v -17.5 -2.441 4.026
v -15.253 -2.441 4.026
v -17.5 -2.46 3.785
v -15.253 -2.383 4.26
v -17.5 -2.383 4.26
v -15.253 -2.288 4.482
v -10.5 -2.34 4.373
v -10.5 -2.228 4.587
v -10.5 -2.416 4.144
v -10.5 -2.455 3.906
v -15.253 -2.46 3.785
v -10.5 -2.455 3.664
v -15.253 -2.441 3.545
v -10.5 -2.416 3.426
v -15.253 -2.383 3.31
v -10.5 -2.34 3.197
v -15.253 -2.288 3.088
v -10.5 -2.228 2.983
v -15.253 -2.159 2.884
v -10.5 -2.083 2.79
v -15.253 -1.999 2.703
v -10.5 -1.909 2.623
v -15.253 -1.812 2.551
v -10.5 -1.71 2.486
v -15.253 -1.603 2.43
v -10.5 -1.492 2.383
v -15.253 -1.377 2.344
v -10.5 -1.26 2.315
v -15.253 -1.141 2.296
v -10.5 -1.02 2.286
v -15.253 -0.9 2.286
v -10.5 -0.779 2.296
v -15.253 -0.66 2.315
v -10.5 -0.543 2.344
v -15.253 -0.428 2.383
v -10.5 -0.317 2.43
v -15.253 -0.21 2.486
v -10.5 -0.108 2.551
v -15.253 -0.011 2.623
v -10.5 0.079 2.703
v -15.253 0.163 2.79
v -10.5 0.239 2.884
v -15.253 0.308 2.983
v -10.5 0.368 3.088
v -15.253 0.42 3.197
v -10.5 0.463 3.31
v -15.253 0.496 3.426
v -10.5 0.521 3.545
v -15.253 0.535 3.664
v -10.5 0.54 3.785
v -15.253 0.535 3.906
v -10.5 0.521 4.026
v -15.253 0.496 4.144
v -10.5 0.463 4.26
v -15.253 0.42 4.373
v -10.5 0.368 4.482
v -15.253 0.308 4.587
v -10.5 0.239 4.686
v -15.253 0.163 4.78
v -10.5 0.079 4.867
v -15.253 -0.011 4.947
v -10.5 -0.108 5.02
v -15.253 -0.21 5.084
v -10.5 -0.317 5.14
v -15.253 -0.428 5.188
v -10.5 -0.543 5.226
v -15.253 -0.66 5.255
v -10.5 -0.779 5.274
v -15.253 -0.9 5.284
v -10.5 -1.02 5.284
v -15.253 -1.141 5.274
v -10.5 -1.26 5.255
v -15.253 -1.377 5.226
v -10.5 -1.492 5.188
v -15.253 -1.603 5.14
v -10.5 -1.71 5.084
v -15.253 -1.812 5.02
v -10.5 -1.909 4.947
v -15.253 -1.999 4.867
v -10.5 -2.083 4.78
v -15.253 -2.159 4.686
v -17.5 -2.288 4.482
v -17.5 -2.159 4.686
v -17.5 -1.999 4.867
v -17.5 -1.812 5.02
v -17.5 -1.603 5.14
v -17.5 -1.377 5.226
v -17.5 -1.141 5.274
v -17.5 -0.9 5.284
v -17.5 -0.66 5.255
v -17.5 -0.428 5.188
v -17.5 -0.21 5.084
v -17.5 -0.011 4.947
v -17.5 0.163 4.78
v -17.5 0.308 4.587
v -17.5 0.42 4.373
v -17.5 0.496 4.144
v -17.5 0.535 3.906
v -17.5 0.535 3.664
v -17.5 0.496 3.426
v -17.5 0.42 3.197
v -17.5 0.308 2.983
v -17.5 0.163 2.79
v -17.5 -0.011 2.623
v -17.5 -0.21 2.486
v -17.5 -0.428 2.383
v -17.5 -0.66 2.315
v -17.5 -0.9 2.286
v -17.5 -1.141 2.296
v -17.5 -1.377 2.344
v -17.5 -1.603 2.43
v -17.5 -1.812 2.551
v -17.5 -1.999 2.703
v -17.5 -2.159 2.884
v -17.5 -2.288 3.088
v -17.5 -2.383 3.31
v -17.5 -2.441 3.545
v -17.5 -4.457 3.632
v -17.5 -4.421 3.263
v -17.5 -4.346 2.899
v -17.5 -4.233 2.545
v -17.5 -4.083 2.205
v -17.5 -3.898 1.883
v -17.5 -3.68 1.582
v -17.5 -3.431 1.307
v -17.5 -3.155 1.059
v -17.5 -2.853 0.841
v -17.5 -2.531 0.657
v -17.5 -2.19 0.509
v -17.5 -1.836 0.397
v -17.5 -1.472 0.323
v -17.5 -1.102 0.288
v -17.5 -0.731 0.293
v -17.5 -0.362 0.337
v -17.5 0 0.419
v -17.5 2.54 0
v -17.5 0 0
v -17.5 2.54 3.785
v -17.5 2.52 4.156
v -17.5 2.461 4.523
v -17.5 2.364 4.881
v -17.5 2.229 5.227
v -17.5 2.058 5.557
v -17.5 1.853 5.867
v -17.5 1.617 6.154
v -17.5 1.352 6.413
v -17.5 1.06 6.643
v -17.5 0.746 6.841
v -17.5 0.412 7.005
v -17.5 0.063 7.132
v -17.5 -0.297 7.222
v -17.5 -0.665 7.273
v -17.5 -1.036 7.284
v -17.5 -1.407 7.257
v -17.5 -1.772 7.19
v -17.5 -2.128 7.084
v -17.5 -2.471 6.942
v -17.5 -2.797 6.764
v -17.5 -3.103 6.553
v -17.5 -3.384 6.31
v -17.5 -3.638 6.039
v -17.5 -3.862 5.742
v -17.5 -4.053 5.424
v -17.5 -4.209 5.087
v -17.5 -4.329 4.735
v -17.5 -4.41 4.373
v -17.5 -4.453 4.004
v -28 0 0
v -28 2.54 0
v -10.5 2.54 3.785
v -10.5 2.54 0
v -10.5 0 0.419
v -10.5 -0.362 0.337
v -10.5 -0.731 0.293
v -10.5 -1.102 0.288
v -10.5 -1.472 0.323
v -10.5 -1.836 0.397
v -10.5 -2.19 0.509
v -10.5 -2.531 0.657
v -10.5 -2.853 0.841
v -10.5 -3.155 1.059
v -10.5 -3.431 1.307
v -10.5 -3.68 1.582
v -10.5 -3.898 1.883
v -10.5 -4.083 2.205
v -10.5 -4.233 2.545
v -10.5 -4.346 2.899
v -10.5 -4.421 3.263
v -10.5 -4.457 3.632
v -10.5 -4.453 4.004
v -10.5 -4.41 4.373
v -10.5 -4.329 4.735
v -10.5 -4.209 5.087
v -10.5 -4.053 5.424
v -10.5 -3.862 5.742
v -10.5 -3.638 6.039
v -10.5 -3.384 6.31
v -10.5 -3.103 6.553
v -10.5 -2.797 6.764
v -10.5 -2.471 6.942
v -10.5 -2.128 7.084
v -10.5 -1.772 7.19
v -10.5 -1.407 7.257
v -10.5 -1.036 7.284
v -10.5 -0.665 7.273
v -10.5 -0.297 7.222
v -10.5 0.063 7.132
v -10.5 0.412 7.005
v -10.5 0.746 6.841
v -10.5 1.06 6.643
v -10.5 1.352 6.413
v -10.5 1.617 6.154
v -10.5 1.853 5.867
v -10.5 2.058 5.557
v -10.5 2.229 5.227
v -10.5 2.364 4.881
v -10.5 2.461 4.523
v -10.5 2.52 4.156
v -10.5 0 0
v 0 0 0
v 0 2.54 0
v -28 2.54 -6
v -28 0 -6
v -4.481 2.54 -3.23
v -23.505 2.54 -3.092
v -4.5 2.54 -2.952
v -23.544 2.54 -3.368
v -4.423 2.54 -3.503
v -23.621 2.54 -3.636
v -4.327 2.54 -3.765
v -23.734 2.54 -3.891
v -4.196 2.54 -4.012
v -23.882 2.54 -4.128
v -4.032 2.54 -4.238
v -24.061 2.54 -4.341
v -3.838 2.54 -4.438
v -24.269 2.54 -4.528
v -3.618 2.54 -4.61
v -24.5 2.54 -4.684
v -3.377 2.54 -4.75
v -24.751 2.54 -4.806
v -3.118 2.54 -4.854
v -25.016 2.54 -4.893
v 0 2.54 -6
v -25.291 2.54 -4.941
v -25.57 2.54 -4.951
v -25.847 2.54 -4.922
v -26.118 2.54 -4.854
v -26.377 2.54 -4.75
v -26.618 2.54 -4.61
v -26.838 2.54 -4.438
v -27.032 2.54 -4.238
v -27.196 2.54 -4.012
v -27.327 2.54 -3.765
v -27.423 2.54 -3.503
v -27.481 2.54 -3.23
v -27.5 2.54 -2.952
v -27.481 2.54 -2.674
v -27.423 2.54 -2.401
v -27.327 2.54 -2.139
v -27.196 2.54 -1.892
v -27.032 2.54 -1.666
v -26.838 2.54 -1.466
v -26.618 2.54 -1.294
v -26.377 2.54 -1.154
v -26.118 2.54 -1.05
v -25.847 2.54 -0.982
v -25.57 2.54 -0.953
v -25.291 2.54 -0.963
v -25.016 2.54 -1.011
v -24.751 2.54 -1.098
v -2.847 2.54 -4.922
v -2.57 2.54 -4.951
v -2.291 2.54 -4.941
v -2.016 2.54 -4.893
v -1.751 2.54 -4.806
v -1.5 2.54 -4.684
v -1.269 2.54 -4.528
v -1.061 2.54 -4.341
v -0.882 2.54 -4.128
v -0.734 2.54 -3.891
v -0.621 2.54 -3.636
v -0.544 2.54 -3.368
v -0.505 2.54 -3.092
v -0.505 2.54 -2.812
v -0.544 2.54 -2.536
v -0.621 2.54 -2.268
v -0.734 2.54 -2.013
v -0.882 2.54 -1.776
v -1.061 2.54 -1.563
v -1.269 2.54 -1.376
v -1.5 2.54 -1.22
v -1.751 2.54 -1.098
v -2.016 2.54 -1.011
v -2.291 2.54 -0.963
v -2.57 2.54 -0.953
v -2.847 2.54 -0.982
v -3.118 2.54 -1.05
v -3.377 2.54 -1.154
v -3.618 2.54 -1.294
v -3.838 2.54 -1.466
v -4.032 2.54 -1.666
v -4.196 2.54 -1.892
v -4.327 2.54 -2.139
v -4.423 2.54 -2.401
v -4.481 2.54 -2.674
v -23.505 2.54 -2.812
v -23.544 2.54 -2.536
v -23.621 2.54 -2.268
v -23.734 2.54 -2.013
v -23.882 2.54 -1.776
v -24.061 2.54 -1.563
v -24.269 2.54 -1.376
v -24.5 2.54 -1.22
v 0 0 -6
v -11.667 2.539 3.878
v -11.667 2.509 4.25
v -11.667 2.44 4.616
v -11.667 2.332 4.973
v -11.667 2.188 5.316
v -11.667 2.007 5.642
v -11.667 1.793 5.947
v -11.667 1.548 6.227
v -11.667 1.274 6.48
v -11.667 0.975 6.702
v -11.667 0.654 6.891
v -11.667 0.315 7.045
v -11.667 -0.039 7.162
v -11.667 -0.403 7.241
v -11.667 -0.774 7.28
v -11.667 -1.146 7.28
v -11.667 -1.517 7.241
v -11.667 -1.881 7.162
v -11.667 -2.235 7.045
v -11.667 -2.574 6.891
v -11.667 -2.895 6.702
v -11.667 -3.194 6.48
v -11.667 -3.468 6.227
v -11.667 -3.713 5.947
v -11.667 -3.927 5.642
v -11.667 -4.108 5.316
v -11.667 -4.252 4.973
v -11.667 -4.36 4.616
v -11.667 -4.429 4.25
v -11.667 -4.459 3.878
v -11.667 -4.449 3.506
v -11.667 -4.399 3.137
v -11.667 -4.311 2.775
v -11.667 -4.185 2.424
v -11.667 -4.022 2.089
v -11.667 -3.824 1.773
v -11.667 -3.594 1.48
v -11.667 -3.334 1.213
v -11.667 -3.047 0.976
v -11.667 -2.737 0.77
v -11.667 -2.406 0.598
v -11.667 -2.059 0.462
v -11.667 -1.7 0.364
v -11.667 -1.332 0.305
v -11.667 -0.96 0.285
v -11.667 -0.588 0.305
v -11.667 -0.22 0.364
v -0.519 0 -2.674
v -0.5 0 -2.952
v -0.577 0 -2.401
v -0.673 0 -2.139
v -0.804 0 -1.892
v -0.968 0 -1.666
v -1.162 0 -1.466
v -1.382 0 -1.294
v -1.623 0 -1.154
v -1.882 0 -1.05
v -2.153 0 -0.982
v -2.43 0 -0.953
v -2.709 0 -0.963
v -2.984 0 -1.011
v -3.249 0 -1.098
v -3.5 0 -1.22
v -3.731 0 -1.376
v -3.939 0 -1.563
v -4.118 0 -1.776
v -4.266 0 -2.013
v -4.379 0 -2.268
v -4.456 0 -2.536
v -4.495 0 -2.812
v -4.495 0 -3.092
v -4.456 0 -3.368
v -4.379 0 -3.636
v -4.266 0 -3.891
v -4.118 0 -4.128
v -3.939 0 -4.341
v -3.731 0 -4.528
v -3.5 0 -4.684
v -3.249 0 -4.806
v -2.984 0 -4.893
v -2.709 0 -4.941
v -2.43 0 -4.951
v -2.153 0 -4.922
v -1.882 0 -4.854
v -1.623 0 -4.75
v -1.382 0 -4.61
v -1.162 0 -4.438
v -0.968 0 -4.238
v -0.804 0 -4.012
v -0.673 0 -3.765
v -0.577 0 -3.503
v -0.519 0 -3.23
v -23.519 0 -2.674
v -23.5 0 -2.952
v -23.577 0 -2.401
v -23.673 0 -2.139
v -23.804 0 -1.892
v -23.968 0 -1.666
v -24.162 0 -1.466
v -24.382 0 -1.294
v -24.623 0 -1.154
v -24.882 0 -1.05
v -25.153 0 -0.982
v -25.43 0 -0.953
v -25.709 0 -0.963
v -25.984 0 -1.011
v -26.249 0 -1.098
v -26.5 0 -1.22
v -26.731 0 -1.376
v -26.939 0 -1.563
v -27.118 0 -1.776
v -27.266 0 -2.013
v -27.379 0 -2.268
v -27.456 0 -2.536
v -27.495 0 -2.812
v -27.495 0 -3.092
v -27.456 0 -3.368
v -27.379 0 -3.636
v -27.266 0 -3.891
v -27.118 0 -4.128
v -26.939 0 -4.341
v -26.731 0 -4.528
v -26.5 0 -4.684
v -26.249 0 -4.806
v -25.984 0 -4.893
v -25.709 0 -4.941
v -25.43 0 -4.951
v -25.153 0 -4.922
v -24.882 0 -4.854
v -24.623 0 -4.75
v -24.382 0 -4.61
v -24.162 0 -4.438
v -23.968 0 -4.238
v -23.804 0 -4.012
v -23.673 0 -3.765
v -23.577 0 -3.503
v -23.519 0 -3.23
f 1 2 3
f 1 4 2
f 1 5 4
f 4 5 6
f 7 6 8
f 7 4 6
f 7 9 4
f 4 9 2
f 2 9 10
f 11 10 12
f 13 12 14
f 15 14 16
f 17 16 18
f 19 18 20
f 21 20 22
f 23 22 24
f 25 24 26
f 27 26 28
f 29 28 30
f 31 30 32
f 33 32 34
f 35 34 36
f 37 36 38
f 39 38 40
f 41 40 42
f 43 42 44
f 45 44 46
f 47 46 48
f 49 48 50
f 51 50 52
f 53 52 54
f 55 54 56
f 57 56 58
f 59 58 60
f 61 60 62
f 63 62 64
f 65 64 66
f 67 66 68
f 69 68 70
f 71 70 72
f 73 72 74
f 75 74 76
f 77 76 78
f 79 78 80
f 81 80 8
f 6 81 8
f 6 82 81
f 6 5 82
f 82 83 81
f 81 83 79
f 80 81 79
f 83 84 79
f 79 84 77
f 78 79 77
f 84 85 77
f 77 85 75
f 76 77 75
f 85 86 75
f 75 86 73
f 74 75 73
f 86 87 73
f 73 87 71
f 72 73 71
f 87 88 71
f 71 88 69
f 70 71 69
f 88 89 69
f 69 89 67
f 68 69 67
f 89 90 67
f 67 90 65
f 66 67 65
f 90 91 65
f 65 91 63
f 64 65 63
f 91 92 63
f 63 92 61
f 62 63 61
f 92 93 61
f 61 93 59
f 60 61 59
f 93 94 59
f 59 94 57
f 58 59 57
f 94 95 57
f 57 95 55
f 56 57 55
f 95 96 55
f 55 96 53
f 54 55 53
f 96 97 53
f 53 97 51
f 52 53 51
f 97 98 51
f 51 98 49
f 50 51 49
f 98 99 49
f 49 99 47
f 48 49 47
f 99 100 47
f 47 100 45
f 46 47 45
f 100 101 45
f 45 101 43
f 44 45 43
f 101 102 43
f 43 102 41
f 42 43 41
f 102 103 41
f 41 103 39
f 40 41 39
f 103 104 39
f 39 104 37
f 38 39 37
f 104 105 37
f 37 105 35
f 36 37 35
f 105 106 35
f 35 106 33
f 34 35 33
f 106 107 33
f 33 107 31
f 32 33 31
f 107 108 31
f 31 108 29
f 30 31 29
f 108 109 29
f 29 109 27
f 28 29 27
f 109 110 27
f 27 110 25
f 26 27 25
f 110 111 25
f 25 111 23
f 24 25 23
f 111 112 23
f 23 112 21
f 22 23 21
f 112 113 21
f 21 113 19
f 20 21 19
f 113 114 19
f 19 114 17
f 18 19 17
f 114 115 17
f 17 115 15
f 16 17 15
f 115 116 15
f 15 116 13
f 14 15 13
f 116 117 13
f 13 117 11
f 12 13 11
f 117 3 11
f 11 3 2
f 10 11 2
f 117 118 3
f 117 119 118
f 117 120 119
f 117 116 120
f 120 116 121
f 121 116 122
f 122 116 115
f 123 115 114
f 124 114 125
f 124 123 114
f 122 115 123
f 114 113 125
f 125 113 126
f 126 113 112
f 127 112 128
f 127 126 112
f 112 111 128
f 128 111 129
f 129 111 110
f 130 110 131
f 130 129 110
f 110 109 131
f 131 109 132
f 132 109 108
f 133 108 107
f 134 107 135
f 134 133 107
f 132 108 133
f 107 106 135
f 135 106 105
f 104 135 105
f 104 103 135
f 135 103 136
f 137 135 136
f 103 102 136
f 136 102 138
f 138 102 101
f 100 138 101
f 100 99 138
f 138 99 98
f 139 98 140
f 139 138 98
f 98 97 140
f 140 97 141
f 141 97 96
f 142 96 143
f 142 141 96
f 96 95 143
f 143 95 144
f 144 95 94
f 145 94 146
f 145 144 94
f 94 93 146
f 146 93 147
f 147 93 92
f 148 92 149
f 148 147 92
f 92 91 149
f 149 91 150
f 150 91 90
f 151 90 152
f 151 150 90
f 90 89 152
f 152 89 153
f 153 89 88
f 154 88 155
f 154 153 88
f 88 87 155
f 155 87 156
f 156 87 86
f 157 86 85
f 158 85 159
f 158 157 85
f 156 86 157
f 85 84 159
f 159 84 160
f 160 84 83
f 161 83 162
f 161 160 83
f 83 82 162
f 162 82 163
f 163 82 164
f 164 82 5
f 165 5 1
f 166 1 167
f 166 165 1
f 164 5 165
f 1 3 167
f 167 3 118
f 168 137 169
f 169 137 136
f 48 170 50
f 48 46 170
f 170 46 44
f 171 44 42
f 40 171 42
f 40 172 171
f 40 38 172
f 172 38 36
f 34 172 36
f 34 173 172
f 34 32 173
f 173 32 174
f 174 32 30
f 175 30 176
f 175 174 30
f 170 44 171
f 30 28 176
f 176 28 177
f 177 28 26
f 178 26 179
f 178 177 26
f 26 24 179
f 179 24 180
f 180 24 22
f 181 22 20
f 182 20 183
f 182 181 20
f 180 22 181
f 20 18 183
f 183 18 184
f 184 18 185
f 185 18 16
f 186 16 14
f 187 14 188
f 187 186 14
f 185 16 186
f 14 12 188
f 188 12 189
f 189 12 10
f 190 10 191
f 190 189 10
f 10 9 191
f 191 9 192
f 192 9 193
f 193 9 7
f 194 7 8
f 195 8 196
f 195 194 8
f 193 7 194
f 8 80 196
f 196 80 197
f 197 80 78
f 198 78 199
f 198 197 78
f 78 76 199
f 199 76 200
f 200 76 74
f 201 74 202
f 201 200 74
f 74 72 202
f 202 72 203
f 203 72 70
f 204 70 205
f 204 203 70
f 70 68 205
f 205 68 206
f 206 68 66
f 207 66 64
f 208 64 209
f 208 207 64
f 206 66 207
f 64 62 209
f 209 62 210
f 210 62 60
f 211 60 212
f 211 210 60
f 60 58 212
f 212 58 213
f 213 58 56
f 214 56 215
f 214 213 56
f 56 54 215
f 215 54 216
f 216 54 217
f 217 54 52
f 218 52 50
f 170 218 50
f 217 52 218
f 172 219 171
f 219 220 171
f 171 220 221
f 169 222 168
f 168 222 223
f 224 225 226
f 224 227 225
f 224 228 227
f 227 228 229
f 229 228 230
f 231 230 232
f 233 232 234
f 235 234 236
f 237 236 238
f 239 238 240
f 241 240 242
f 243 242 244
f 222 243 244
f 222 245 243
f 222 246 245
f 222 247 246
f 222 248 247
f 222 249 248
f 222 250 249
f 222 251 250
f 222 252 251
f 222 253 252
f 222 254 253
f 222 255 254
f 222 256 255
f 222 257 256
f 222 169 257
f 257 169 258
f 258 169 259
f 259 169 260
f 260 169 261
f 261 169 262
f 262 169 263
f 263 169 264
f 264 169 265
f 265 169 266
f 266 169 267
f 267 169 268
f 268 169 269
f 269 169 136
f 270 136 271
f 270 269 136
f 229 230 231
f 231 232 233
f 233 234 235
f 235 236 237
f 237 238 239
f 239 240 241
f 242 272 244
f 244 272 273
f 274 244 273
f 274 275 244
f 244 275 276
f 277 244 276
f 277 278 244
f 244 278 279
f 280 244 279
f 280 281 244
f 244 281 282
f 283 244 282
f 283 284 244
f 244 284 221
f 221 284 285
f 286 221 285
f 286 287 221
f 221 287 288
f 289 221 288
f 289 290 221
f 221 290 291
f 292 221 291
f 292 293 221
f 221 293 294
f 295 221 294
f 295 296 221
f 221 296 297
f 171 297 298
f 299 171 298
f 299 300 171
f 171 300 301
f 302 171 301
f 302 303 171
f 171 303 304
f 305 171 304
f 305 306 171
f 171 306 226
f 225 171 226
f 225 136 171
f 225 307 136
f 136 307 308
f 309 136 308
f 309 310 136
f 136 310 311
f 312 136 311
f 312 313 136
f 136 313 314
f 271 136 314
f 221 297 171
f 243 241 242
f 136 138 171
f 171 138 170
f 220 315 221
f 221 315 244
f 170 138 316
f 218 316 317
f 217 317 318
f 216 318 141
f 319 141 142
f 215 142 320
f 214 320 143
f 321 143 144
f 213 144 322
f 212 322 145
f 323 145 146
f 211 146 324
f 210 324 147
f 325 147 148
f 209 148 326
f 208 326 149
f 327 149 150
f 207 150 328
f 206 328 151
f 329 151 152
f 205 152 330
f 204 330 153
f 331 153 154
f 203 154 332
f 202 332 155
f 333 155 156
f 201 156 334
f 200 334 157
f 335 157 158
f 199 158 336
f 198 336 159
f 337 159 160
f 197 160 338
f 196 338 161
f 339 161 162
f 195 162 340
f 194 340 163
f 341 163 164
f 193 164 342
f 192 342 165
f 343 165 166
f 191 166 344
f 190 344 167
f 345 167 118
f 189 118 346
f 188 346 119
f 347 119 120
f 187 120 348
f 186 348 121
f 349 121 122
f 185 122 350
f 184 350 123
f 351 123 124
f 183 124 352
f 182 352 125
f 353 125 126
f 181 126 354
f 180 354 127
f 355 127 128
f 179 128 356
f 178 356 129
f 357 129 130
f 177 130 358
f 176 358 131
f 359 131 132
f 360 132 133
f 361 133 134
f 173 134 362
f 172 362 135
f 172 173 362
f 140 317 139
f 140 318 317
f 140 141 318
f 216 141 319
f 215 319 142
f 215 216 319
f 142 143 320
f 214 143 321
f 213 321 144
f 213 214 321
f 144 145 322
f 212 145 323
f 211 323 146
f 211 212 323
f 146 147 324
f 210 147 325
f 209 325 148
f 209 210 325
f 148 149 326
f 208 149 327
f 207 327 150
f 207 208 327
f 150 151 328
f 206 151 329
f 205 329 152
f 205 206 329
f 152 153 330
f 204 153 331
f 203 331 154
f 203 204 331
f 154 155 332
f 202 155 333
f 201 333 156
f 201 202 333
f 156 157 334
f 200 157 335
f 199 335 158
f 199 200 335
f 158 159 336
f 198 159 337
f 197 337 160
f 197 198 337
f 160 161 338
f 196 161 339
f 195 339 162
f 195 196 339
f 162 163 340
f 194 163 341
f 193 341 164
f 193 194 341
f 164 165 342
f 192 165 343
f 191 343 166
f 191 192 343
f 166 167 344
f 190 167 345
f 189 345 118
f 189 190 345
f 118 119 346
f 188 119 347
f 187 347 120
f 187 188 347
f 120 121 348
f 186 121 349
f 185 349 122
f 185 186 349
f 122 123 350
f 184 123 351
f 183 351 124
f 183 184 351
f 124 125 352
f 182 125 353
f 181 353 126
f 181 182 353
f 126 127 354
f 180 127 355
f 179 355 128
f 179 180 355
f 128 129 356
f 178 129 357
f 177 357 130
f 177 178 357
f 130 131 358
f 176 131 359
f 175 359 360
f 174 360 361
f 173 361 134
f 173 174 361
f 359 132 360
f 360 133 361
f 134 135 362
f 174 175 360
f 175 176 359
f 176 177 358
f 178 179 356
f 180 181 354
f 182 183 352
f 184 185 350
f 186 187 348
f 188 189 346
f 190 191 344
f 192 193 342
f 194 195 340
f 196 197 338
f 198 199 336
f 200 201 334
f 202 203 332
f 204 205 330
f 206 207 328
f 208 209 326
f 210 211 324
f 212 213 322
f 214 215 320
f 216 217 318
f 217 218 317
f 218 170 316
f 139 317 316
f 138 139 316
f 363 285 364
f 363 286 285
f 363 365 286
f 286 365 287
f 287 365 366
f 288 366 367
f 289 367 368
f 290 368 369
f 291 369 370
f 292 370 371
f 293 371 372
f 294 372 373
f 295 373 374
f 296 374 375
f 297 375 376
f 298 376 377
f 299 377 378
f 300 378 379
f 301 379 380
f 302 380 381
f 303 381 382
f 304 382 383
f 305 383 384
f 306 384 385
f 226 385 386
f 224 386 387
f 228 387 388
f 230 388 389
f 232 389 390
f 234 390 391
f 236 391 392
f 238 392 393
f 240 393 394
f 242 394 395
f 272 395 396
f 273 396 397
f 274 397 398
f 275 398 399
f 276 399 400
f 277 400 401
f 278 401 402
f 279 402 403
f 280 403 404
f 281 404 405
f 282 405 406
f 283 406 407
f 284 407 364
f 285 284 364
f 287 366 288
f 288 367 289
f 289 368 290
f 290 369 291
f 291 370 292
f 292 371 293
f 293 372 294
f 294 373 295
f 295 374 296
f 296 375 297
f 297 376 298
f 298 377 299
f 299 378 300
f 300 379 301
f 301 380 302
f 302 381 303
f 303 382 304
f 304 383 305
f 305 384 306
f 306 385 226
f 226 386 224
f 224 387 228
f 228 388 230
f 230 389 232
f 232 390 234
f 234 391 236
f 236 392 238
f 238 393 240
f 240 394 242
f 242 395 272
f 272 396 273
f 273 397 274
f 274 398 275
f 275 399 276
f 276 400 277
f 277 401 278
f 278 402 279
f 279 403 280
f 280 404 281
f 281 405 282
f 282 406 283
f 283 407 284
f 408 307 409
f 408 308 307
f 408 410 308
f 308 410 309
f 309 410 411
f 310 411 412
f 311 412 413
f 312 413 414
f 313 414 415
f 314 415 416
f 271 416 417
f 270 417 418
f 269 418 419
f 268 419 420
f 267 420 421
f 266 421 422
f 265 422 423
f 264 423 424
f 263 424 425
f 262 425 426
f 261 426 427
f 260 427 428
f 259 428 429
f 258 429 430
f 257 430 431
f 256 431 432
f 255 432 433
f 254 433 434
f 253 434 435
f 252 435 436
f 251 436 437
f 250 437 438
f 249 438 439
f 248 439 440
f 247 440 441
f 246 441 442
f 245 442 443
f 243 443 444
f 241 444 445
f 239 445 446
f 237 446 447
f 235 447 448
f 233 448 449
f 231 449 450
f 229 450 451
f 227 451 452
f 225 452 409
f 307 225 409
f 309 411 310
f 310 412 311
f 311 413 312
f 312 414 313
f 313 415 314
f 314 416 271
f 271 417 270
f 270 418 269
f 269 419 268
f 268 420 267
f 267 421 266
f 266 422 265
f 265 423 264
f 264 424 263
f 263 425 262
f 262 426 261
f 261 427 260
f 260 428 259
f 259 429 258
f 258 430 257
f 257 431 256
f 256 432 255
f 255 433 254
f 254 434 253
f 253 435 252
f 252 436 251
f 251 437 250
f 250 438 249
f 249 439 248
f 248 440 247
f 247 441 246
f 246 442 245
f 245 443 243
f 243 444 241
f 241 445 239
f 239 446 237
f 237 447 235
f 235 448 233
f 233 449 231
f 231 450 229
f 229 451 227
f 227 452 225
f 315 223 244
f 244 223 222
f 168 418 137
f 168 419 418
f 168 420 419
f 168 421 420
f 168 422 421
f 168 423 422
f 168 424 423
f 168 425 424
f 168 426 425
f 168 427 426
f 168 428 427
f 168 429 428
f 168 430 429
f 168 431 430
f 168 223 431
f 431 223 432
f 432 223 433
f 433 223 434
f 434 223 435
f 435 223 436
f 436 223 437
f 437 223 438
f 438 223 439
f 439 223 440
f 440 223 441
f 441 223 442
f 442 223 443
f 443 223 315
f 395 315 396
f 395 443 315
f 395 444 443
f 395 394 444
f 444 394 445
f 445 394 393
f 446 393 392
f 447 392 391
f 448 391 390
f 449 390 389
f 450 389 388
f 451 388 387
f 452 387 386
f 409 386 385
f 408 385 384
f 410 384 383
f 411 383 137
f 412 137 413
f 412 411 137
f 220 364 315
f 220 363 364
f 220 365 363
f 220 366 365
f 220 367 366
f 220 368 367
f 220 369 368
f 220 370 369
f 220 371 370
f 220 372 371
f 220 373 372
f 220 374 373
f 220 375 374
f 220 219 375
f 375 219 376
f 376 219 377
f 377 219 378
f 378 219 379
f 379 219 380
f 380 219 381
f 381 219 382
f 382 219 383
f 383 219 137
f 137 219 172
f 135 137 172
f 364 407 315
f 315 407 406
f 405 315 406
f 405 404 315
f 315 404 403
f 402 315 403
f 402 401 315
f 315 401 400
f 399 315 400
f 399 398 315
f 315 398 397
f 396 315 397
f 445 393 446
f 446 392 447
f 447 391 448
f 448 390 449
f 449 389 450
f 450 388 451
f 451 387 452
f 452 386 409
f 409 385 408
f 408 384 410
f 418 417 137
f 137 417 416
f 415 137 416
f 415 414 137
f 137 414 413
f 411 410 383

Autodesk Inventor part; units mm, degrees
ref_plane "YZ Plane" through (0, 0, 0) normal (1, 0, 0) x (0, 1, 0)
ref_plane "XZ Plane" through (0, 0, 0) normal (0, 1, 0) x (-1, 0, 0)
ref_plane "XY Plane" through (0, 0, 0) normal (0, 0, 1) x (1, 0, 0)
sketch "Sketch1" plane through (0, 0, 0) normal (0, 1, 0) x (-1, 0, 0)
  line L0 (0, 0) -> (28, 0)
  line L1 (28, 0) -> (28, -6)
  line L2 (28, -6) -> (0, -6)
  line L3 (0, -6) -> (0, 0)
  dimension "d0" = 28
  dimension "d1" = 6
extrude "Extrusion1" add sketch "Sketch1" along normal blind 2.54
hole "Hole1" at (-25.5, 2.54, -2.952) direction (0, -1, 0) diameter 4 end through all
hole "Hole2" at (-2.5, 2.54, -2.952) direction (0, -1, 0) diameter 4 end through all
sketch "Sketch2" plane through (0, 0, 0) normal (1, 0, 0) x (0, 0, -1)
  circle A0 centre (-3.7852, -0.96) radius 3.5
  line L0 (-3.7852, 2.54) -> (0.6598, 2.54)
  line L1 (0, 2.54) -> (6, 2.54) projected
  line L2 (6, 0) -> (0, 0) projected
  line L3 (-0.4194, 0) -> (0, 0)
  line L4 (0, 0) -> (-0.4194, 0)
  line L5 (0.2994, 0) -> (-3.7852, 0)
  line L6 (-3.7852, 0) -> (-3.7852, 2.54)
  line L7 (-3.7852, 2.54) -> (0.2994, 2.54)
  line L8 (0.2994, 2.54) -> (0.2994, 0)
  line L9 (0.2994, 2.54) -> (-3.6886, 2.54)
  line L10 (-3.6886, 2.54) -> (-3.6886, 0)
  line L11 (-3.6886, 0) -> (0.2994, 0)
  line L12 (0.2994, 0) -> (0.2994, 2.54)
  dimension "d22" = 7
  dimension "d41" = 4.445
extrude "Extrusion2" add sketch "Sketch2" against normal blind 28
sketch "Sketch3" plane through (0, 2.54, 0) normal (0, 1, 0) x (1, 0, 0)
  line L0 (-28, 0) -> (-17.5, 0)
  line L1 (-17.5, 0) -> (-17.5, -12.7)
  line L2 (-17.5, -12.7) -> (-28, -12.7)
  line L3 (-28, -12.7) -> (-28, 0)
  line L4 (0, 0) -> (0, 6) projected
  line L5 (0, 0) -> (-10.5, 0)
  line L6 (-10.5, 0) -> (-10.5, -9.3969)
  line L7 (-10.5, -9.3969) -> (0, -9.3969)
  line L8 (0, -9.3969) -> (0, 0)
  dimension "d28" = 7
  dimension "d29" = 10.5
  dimension "d42" = 12.7
extrude "Extrusion3" cut sketch "Sketch3" against normal blind 28
hole "Hole3" at (-10.5, -0.96, 3.7852) direction (-1, 0, 0) diameter 3 end through all
properties part number "camera holderpt2"
